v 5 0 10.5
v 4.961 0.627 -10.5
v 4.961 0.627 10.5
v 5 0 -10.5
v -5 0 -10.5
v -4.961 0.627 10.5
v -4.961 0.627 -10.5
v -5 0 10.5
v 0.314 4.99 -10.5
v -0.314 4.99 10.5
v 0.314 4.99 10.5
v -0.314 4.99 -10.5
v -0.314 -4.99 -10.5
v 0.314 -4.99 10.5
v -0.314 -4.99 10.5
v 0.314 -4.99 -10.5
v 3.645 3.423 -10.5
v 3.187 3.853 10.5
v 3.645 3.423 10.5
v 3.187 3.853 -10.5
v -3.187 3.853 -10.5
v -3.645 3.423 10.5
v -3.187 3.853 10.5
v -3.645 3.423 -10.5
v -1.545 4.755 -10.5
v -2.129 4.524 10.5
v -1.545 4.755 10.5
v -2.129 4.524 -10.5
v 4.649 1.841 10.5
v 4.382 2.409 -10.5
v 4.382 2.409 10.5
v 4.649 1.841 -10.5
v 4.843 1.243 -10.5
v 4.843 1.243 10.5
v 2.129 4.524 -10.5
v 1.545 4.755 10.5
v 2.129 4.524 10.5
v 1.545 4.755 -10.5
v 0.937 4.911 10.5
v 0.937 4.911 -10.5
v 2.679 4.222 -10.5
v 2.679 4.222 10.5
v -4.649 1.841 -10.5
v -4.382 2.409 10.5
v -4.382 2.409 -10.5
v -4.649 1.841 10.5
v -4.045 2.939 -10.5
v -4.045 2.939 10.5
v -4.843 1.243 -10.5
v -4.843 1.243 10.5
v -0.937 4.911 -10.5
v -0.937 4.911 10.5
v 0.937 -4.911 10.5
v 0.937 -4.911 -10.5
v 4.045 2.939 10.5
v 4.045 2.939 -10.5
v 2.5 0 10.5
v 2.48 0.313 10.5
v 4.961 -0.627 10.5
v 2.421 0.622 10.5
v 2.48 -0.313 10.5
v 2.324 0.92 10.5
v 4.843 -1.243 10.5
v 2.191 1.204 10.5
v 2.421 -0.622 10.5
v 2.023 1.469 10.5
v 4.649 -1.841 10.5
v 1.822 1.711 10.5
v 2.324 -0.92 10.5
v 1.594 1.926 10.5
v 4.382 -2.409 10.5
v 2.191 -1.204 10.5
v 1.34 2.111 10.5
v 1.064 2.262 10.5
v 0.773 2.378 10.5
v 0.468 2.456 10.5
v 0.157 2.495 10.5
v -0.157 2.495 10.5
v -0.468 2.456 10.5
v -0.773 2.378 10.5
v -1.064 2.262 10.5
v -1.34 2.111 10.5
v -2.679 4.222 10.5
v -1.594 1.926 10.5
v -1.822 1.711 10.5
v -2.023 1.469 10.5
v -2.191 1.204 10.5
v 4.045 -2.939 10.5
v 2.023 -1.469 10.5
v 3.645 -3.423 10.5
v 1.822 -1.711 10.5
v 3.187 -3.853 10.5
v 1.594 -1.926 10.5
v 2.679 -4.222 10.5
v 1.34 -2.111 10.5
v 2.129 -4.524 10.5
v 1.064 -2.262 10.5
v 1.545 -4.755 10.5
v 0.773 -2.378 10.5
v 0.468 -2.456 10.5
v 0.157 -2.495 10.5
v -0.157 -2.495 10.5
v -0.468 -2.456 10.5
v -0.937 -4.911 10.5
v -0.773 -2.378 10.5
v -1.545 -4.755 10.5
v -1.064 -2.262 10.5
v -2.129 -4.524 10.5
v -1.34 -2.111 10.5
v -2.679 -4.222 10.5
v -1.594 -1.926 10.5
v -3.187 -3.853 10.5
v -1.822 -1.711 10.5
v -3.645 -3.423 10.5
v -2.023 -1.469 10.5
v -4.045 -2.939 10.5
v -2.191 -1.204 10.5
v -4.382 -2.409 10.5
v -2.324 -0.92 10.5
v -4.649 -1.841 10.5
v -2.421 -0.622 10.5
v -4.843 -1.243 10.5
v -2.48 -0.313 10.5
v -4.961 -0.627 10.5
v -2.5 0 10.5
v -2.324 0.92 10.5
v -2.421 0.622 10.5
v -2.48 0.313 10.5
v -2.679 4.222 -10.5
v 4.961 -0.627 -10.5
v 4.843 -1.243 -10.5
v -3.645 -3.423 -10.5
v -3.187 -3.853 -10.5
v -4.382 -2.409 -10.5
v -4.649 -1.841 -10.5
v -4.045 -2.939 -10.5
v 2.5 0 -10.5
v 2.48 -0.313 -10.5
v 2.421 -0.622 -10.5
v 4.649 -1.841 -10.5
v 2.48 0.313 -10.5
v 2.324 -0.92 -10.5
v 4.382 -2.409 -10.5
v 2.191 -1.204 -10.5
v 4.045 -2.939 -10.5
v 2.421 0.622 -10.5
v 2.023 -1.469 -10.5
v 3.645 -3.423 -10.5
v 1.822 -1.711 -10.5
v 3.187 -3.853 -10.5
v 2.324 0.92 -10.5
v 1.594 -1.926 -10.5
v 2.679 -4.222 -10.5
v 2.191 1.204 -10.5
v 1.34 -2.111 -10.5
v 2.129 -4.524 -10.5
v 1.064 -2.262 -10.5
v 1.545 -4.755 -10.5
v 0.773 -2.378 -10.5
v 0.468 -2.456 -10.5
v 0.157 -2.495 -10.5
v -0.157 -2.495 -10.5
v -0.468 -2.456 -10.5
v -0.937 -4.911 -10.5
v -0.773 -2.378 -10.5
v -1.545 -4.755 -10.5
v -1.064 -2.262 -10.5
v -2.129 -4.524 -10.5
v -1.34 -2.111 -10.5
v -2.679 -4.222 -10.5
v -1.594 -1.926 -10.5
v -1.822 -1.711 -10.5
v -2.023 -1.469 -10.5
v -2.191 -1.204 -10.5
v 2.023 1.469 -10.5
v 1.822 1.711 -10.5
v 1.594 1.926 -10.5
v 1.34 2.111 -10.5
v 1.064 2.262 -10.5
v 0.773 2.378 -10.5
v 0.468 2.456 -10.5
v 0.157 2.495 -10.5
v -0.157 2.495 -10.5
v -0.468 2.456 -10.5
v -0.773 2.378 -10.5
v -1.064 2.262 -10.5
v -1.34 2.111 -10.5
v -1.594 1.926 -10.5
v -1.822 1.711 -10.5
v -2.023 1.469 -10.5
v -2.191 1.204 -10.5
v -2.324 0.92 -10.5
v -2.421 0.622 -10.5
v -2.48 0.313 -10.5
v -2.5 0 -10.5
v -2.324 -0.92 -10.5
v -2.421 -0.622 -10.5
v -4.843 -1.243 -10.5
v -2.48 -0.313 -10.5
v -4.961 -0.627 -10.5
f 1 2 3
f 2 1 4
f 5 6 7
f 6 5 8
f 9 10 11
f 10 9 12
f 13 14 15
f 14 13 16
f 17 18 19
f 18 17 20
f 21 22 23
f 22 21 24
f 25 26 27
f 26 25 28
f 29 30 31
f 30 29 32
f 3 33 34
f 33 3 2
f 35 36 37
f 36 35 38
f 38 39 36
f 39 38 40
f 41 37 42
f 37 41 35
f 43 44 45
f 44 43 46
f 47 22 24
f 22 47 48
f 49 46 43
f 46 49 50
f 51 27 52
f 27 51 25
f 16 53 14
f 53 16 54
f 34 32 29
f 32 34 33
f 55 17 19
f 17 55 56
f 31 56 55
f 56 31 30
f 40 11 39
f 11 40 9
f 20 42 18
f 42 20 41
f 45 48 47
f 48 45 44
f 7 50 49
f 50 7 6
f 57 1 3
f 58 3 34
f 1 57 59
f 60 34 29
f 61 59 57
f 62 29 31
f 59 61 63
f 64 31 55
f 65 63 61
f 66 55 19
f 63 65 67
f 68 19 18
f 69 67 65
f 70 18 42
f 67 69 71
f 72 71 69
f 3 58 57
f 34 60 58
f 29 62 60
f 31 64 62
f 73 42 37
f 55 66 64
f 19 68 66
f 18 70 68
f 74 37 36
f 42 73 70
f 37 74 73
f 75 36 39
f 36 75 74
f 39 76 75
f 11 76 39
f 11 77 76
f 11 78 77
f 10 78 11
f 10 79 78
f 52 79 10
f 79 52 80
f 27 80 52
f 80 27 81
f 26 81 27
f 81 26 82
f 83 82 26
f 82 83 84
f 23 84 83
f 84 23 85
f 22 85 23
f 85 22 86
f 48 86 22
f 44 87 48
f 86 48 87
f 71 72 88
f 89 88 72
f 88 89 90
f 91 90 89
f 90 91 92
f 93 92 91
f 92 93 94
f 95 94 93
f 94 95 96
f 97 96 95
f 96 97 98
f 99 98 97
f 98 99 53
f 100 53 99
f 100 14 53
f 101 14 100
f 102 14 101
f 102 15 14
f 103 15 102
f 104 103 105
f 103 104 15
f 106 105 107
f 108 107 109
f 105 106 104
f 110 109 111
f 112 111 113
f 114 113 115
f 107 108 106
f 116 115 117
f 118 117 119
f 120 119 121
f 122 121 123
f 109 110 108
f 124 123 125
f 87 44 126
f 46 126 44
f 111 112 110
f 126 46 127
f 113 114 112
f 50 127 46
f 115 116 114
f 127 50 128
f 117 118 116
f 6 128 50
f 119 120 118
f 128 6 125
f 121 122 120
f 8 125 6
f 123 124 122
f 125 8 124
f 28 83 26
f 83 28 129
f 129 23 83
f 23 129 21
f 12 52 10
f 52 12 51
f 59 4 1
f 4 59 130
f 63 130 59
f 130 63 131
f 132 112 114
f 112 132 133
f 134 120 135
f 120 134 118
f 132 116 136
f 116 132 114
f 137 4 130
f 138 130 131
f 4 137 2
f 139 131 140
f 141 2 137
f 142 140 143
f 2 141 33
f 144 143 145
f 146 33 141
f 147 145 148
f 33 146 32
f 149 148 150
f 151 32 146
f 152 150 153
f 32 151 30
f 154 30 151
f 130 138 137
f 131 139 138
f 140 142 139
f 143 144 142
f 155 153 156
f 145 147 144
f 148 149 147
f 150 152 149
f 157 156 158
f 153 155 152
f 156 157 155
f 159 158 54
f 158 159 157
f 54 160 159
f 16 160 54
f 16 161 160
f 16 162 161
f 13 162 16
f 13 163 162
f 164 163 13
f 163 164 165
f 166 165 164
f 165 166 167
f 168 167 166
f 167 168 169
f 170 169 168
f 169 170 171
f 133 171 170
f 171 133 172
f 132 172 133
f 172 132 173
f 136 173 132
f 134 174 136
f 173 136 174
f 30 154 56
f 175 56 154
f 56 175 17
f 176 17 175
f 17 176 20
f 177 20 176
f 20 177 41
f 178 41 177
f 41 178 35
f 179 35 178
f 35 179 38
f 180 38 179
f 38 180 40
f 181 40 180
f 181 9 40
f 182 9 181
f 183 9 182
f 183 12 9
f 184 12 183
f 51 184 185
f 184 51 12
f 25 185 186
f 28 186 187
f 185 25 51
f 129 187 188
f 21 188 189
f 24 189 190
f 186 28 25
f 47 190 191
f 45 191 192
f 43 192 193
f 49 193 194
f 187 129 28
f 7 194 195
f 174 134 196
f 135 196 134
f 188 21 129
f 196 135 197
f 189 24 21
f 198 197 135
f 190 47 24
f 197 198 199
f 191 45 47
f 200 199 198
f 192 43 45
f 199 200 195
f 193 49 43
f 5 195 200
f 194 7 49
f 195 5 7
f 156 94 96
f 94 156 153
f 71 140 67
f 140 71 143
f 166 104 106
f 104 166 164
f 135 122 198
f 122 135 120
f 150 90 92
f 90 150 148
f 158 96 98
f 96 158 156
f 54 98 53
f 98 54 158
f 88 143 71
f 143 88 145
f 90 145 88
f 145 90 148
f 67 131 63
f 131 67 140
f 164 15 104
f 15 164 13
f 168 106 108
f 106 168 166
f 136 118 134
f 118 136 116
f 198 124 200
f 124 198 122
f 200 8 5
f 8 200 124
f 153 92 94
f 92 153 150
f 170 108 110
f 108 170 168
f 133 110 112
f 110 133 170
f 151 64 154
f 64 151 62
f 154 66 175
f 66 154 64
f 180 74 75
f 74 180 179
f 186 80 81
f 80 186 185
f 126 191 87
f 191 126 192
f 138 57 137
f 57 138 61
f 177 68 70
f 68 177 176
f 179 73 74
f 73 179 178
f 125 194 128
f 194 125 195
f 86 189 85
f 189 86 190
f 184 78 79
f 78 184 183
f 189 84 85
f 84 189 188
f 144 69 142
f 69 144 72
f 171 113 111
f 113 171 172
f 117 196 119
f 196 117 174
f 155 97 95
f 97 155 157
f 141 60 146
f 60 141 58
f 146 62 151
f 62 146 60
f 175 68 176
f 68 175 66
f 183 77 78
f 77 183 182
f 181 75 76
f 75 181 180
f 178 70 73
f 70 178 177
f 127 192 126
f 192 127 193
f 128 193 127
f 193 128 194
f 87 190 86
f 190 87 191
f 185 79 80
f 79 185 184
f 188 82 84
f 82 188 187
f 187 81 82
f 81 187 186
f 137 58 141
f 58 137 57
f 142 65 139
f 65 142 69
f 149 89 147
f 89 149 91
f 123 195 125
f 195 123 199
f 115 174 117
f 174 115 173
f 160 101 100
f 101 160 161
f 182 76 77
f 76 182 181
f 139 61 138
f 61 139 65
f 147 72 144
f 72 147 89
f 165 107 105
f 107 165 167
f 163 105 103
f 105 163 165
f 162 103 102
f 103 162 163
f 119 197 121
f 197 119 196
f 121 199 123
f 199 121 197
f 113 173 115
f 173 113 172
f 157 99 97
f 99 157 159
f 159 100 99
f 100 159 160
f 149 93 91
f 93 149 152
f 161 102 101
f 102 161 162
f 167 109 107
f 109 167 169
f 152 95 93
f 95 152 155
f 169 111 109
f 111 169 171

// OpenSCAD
$fn = 50;


difference() {
	union() {
		translate(v = [0, 0, -10.5000000000]) {
			cylinder(h = 21, r = 5.0000000000);
		}
	}
	union() {
		translate(v = [0, 0, -100.0000000000]) {
			cylinder(h = 200, r = 2.5000000000);
		}
	}
}
